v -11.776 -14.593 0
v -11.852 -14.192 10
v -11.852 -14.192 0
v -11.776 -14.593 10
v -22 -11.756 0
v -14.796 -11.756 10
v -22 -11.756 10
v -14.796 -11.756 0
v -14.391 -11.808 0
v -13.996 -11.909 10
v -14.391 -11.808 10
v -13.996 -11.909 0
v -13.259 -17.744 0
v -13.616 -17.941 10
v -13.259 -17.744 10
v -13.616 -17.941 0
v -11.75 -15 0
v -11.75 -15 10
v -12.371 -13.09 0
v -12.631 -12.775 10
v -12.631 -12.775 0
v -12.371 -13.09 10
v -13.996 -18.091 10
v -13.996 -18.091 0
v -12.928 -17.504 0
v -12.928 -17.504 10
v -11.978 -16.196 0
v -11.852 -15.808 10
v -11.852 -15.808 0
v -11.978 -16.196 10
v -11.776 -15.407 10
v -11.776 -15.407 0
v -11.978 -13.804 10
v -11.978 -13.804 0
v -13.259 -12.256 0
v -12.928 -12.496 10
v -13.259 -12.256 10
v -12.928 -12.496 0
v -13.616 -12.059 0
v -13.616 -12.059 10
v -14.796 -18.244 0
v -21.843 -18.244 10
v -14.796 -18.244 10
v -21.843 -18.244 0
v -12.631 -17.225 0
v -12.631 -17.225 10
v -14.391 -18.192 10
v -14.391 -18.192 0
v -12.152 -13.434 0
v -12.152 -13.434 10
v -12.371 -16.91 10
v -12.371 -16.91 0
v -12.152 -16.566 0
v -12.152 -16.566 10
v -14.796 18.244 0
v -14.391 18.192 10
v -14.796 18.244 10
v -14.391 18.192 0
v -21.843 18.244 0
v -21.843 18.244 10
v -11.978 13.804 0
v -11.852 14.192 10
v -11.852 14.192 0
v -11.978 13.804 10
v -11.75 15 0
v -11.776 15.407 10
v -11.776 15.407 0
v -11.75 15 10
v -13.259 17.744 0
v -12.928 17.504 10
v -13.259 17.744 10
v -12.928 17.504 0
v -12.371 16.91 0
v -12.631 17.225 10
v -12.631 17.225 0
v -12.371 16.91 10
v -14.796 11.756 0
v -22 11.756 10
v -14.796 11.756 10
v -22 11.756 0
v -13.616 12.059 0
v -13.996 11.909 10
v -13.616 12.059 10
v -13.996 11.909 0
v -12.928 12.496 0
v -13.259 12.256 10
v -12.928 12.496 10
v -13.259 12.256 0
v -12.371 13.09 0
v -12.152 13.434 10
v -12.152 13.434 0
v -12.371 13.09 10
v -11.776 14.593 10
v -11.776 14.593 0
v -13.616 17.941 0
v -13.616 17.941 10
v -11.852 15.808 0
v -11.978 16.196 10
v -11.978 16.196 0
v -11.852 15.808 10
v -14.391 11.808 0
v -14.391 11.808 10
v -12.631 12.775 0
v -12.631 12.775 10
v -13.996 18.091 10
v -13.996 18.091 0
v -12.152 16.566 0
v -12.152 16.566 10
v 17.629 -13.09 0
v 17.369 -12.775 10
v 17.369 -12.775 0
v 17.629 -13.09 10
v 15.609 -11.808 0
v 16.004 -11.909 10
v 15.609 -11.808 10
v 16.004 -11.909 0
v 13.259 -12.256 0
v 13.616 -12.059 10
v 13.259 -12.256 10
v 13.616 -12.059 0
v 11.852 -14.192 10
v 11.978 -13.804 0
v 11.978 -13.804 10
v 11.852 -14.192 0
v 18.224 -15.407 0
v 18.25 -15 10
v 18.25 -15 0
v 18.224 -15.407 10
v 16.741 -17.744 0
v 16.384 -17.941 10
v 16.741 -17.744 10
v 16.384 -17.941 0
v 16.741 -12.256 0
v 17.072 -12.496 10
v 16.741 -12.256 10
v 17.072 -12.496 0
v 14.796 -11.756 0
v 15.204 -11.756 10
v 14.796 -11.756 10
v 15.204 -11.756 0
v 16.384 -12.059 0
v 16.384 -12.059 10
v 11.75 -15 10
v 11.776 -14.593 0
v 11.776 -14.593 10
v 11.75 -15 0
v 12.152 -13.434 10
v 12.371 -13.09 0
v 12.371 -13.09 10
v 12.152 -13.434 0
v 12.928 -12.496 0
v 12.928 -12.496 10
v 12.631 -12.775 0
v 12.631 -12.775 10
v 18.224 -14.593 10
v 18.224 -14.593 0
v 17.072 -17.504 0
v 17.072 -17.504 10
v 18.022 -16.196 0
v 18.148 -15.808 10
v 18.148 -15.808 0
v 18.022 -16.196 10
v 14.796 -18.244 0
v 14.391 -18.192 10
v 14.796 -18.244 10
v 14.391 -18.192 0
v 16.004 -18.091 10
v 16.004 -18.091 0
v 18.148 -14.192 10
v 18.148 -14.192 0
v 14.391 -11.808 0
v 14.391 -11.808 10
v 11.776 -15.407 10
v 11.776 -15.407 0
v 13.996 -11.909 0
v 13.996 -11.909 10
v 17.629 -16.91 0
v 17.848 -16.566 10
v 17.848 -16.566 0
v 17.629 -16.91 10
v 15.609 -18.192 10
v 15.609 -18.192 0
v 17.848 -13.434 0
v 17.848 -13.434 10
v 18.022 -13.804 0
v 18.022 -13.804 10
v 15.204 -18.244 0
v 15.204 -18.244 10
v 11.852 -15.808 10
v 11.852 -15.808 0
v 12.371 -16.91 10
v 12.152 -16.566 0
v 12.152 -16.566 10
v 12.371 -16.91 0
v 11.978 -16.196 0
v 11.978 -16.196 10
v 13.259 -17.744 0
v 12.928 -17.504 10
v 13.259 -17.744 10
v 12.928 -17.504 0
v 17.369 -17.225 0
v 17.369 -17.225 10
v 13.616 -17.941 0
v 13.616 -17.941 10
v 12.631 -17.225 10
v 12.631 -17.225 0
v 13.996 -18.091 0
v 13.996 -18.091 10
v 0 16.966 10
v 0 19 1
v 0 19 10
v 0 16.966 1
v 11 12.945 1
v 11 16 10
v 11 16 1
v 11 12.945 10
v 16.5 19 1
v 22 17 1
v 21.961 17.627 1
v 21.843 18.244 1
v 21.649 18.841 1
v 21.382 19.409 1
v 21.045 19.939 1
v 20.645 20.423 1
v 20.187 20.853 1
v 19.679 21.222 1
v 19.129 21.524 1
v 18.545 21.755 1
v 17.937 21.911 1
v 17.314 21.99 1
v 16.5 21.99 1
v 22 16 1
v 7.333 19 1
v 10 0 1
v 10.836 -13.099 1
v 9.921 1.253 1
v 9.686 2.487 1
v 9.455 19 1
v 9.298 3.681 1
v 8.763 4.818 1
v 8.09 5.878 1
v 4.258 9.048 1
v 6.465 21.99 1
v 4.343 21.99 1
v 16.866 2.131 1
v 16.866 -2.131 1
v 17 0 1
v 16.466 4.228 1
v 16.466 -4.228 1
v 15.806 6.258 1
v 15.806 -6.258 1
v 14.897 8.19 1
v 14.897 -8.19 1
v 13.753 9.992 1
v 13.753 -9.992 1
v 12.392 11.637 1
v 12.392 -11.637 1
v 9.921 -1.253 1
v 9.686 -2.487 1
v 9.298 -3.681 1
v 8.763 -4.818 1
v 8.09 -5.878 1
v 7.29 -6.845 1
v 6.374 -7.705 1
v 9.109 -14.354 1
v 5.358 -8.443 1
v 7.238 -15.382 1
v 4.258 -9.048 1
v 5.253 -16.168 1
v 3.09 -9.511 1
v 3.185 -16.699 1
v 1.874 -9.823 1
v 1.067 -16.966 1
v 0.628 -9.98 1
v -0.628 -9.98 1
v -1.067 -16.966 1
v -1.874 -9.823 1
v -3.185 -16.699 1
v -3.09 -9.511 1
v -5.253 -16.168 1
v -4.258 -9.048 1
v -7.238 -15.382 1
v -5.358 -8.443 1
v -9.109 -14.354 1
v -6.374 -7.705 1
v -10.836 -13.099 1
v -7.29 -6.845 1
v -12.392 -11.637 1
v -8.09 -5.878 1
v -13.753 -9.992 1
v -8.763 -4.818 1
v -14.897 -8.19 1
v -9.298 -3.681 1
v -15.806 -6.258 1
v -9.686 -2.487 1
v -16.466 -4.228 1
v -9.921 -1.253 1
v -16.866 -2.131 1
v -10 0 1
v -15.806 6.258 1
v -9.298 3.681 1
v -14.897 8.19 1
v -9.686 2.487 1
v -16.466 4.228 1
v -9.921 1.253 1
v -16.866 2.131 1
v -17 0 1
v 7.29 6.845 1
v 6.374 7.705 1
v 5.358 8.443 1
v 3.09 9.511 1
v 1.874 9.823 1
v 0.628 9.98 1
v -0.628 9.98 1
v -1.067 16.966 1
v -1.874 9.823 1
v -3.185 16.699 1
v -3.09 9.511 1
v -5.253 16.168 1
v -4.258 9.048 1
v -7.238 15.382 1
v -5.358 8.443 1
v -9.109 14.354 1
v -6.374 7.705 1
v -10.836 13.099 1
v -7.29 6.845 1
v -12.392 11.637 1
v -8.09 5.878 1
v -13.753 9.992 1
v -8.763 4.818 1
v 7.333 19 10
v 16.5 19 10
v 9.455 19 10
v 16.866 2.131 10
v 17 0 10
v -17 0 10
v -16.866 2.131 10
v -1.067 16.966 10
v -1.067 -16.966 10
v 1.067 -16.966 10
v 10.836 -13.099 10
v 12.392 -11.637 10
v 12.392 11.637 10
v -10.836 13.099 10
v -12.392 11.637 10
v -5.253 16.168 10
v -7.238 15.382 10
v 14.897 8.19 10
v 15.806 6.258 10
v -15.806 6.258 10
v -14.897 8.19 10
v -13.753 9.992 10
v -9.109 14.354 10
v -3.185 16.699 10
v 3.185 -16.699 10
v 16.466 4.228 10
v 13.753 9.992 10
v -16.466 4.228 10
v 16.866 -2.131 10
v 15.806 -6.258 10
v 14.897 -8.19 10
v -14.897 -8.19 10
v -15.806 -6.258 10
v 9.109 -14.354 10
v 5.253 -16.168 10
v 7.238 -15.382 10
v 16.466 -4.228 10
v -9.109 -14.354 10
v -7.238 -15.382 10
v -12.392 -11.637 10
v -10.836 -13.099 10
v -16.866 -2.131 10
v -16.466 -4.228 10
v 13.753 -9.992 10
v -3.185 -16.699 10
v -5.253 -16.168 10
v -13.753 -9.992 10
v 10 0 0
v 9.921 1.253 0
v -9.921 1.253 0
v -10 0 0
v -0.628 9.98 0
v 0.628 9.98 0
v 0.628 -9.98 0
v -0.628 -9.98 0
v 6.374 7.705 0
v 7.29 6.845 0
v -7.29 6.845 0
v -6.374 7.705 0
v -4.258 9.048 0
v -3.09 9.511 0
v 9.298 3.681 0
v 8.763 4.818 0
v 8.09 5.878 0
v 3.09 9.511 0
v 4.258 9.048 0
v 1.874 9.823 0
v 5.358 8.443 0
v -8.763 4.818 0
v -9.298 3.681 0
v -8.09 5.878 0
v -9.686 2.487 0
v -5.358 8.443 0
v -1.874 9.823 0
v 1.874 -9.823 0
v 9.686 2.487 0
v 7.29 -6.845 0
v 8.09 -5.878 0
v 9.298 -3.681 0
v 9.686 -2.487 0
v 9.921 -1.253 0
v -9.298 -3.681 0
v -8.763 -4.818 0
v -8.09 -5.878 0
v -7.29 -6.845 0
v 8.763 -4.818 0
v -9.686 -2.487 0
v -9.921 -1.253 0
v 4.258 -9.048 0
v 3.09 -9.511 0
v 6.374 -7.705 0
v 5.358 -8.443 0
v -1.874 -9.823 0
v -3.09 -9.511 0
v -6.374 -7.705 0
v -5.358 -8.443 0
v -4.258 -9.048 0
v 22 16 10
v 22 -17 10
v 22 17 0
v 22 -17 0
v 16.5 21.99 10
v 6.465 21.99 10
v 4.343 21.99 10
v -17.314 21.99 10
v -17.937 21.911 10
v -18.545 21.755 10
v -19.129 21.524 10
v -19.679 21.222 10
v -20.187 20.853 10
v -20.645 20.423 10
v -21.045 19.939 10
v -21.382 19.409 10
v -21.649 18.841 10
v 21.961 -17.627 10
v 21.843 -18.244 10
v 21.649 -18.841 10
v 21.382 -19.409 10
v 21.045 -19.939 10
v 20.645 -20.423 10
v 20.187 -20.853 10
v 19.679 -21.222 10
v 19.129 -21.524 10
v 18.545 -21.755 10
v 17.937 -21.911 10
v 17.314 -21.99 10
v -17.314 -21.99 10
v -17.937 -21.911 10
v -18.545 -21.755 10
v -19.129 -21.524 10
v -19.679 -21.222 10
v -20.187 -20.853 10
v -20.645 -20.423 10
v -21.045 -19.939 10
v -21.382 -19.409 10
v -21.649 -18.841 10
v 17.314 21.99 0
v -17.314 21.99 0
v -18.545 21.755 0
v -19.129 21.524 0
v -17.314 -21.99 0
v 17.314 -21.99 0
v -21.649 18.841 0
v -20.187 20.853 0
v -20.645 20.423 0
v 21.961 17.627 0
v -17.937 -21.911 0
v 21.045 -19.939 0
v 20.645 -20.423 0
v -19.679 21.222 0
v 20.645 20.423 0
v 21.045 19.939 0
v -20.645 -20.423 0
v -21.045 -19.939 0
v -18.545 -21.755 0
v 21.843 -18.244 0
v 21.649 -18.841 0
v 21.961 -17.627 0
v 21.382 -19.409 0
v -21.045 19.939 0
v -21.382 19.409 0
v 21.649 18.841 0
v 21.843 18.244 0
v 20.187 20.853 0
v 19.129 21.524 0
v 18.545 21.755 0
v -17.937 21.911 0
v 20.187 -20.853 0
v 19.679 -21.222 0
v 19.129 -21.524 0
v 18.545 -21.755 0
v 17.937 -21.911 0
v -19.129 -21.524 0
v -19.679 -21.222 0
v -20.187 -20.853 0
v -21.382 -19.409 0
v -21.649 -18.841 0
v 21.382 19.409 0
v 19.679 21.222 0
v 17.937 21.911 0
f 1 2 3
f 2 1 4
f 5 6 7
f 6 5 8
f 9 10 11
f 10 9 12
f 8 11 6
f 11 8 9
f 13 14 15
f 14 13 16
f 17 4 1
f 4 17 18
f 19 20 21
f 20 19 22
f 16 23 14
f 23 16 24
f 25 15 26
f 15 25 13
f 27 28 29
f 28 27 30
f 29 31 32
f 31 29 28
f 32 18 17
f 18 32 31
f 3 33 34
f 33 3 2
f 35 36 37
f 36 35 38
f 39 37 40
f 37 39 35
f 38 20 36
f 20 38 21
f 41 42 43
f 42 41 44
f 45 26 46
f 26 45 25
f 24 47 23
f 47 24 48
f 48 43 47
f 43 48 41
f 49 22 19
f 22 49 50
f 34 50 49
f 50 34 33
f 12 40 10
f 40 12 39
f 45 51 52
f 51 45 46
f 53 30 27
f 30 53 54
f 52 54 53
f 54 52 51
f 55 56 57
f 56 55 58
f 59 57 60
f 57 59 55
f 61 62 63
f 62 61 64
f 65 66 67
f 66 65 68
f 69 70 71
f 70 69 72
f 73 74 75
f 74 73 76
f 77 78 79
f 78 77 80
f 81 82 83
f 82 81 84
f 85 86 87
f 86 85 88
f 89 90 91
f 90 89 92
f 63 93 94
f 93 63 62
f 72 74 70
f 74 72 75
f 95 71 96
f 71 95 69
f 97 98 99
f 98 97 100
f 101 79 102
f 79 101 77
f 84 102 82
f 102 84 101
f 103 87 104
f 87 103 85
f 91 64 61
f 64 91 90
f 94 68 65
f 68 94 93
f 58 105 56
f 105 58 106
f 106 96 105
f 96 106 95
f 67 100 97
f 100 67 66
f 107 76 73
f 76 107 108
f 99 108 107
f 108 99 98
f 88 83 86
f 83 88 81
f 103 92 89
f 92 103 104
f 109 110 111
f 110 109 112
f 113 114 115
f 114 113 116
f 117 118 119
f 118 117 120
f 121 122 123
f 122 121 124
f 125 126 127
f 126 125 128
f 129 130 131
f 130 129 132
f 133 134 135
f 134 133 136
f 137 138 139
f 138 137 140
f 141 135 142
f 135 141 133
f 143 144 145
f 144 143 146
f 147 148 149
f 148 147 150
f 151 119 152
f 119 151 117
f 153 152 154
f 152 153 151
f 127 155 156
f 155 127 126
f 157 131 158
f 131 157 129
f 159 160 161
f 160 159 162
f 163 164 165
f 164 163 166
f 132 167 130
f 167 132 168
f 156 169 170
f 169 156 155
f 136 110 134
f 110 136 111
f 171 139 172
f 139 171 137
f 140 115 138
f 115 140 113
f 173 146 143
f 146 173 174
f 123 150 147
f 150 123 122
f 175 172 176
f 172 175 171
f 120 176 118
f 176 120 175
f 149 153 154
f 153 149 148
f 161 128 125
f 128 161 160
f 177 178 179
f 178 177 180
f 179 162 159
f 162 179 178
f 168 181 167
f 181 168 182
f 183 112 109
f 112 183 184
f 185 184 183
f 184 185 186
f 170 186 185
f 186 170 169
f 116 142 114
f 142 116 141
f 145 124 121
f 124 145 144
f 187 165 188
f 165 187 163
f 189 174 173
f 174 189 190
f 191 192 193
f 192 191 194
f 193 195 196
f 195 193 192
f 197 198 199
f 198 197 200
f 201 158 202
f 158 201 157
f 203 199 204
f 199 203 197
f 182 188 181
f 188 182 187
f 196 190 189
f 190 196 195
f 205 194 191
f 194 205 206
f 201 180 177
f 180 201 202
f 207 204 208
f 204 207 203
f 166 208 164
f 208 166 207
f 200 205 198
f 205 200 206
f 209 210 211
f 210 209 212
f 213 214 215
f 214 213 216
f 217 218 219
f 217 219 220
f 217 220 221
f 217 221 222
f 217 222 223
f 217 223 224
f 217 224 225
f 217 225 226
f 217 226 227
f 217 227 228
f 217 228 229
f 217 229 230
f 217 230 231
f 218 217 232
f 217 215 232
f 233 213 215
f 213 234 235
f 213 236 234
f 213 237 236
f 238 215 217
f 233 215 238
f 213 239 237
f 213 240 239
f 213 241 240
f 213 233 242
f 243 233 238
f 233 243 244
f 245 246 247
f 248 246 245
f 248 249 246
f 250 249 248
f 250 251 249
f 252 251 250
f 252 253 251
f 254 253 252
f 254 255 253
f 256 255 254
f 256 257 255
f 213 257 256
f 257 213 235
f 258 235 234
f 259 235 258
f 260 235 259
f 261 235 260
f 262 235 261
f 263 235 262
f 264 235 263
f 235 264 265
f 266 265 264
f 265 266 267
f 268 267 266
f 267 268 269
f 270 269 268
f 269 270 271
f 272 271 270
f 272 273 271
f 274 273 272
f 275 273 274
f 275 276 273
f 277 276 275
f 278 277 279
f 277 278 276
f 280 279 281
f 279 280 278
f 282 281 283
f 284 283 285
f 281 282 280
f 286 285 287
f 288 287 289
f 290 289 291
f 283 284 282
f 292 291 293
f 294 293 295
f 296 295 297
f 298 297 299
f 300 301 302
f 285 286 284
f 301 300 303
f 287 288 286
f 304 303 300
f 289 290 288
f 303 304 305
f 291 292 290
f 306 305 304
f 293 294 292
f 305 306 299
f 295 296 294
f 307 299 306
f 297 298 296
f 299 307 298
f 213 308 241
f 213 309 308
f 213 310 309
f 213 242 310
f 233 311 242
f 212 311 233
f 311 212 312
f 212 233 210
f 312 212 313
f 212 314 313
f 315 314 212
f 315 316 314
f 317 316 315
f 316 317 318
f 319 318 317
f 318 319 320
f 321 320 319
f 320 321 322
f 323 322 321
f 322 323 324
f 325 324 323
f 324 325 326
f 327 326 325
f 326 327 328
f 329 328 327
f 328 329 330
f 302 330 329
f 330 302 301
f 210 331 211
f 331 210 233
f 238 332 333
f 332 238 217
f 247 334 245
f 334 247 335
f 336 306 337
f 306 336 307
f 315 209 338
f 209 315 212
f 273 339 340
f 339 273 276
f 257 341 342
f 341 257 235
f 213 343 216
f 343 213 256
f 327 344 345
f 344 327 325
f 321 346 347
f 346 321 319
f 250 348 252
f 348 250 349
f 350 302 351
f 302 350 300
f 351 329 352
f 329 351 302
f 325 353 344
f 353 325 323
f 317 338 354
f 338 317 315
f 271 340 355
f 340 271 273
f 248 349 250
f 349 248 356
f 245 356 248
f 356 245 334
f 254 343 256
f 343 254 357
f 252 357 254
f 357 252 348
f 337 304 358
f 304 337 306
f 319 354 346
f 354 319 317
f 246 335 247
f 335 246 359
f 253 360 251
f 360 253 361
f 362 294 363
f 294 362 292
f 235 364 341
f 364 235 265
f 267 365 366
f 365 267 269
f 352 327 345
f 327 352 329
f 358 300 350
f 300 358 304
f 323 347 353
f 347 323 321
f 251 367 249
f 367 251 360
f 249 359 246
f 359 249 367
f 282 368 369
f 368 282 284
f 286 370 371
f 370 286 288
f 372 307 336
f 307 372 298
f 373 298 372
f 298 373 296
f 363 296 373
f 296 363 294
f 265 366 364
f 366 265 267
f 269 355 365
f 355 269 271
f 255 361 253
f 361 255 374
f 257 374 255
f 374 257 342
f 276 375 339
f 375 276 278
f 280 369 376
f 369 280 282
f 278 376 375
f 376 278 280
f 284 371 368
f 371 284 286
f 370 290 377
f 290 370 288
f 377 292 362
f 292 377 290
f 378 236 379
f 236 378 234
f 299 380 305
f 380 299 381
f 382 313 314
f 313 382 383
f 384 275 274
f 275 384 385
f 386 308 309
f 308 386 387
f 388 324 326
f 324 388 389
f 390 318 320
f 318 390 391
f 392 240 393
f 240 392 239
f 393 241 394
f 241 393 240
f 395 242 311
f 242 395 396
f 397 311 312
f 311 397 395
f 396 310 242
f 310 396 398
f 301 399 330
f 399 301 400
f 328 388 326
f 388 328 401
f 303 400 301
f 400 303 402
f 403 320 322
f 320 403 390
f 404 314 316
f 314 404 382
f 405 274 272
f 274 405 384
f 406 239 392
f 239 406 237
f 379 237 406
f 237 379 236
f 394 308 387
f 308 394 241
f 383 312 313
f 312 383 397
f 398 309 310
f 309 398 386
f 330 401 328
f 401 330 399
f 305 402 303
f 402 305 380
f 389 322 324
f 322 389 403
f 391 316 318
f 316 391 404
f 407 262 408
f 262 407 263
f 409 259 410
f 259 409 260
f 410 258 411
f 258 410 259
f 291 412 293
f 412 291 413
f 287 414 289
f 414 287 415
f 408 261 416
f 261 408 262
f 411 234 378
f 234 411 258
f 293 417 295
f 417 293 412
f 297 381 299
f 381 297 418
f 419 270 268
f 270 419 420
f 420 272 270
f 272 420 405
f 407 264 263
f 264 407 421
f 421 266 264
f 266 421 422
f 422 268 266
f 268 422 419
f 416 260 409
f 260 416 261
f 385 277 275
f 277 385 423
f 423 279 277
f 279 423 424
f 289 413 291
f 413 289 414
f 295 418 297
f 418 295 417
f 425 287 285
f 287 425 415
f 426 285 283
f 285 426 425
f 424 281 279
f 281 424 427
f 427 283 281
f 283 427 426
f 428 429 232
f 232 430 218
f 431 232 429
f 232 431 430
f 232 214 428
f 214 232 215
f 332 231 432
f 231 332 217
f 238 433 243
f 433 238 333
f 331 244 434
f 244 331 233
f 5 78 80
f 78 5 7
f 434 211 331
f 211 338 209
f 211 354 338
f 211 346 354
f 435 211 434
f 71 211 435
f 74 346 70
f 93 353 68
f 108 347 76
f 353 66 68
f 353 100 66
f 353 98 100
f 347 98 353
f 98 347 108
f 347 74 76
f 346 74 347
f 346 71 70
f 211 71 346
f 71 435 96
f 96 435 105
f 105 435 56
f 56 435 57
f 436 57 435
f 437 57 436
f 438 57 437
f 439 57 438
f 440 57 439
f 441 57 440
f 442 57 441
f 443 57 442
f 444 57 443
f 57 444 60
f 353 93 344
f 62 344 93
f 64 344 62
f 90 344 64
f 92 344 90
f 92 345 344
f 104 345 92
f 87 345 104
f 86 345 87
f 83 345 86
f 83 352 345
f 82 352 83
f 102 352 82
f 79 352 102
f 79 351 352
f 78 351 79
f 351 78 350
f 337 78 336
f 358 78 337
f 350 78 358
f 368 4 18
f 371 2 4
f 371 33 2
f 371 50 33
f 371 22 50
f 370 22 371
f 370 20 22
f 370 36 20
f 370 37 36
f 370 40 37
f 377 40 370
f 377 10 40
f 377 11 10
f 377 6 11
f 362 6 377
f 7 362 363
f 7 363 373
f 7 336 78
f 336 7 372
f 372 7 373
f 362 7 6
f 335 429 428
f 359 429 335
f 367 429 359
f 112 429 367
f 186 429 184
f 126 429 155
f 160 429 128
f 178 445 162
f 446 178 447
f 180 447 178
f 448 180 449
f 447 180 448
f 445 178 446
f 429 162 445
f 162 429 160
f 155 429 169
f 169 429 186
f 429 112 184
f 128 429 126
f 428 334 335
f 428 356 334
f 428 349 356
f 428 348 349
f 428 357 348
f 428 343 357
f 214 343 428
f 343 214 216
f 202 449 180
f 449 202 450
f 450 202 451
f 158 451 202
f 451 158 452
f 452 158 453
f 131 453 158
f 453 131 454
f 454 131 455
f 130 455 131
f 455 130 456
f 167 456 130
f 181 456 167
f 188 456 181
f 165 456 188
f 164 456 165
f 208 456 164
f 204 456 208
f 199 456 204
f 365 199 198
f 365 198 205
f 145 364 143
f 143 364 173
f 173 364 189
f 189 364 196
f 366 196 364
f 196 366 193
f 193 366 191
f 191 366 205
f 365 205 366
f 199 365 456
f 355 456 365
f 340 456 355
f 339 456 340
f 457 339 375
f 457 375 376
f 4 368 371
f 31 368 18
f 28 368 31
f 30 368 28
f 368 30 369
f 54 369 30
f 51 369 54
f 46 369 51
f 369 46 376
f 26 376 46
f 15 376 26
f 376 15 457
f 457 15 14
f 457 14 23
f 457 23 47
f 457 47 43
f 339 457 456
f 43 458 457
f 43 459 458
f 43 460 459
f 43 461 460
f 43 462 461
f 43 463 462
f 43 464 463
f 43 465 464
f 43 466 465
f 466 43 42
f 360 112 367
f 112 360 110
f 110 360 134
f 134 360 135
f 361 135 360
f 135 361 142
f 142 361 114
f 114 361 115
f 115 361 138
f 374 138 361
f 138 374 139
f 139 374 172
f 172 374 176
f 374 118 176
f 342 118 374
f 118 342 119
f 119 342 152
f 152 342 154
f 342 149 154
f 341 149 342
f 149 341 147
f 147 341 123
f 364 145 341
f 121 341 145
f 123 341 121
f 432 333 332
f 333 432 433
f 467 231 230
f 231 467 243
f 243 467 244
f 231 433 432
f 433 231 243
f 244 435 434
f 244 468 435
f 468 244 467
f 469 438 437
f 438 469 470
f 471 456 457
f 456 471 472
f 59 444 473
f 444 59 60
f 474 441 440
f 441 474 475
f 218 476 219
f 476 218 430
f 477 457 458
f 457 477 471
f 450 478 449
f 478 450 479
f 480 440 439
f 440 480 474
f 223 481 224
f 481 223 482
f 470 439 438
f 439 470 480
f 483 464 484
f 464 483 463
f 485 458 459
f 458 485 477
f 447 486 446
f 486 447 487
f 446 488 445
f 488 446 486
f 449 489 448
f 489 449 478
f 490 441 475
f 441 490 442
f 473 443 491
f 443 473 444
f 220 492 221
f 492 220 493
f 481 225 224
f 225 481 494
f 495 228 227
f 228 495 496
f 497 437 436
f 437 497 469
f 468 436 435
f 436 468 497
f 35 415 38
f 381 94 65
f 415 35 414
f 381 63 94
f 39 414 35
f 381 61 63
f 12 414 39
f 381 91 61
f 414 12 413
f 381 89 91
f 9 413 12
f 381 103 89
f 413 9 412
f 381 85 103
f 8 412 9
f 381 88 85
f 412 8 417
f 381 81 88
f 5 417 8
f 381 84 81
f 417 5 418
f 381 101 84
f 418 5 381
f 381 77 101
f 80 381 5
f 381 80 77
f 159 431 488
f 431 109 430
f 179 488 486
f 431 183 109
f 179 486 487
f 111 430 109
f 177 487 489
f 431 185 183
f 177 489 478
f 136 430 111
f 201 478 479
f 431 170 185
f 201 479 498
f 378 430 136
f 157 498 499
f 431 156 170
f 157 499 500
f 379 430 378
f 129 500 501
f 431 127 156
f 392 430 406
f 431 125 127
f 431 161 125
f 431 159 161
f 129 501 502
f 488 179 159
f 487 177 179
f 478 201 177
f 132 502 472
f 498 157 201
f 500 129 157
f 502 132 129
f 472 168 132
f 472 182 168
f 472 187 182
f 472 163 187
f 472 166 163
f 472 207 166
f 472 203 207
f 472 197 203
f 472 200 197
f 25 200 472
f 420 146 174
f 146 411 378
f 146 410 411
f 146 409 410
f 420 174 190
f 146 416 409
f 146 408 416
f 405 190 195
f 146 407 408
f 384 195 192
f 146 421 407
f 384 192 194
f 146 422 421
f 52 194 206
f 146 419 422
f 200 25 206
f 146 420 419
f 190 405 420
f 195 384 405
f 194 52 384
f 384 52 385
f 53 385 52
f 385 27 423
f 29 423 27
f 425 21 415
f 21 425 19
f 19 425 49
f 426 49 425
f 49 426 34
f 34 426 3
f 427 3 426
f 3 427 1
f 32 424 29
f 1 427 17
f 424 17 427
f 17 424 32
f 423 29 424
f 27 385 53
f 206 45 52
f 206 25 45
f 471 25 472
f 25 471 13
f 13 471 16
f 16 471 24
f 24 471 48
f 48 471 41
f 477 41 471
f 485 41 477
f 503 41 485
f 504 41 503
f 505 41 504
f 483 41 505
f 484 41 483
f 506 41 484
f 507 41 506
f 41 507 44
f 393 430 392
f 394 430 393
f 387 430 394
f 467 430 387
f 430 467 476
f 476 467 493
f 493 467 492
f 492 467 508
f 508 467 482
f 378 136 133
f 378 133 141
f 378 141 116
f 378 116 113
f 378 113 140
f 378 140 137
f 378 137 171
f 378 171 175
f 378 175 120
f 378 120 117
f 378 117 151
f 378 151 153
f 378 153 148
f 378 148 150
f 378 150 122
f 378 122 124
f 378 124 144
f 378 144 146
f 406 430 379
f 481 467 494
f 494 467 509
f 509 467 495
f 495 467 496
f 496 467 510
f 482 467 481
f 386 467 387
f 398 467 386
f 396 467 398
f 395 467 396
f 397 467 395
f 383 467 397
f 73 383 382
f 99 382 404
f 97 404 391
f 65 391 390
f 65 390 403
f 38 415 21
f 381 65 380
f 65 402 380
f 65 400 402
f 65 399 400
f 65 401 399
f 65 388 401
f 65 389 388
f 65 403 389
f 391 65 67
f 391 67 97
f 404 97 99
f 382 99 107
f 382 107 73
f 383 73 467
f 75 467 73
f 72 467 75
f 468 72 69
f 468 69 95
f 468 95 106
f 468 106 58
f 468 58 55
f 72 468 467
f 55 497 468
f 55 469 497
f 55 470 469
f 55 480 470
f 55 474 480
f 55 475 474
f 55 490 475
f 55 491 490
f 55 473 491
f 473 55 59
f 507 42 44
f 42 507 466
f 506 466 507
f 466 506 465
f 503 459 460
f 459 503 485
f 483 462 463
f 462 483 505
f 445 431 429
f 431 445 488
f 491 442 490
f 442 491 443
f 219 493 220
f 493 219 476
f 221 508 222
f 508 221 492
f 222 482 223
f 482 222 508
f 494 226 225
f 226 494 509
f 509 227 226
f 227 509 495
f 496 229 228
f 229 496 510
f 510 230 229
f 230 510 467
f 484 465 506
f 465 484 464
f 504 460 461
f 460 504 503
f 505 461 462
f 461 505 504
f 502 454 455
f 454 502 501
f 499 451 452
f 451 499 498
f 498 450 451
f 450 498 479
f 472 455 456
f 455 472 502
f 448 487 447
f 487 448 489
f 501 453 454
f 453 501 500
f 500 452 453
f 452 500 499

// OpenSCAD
$fn = 50;


difference() {
	union() {
		translate(v = [0, 0, 0]) {
			rotate(a = [0, 0, 0]) {
				hull() {
					translate(v = [-17.0000000000, 17.0000000000, 0]) {
						rotate(a = [0, 0, 0]) {
							translate(v = [0, 0, 0]) {
								rotate(a = [0, 0, 0]) {
									cylinder(h = 10, r = 5);
								}
							}
						}
					}
					translate(v = [17.0000000000, 17.0000000000, 0]) {
						rotate(a = [0, 0, 0]) {
							translate(v = [0, 0, 0]) {
								rotate(a = [0, 0, 0]) {
									cylinder(h = 10, r = 5);
								}
							}
						}
					}
					translate(v = [-17.0000000000, -17.0000000000, 0]) {
						rotate(a = [0, 0, 0]) {
							translate(v = [0, 0, 0]) {
								rotate(a = [0, 0, 0]) {
									cylinder(h = 10, r = 5);
								}
							}
						}
					}
					translate(v = [17.0000000000, -17.0000000000, 0]) {
						rotate(a = [0, 0, 0]) {
							translate(v = [0, 0, 0]) {
								rotate(a = [0, 0, 0]) {
									cylinder(h = 10, r = 5);
								}
							}
						}
					}
				}
			}
		}
	}
	union() {
		translate(v = [-22.5000000000, -15.0000000000, -125]) {
			rotate(a = [0, 0, 0]) {
				hull() {
					translate(v = [7.5000000000, 0, 0]) {
						rotate(a = [0, 0, 0]) {
							translate(v = [0, 0, 0]) {
								rotate(a = [0, 0, 0]) {
									cylinder(h = 250, r = 3.2500000000);
								}
							}
						}
					}
					translate(v = [-7.5000000000, 0, 0]) {
						rotate(a = [0, 0, 0]) {
							translate(v = [0, 0, 0]) {
								rotate(a = [0, 0, 0]) {
									cylinder(h = 250, r = 3.2500000000);
								}
							}
						}
					}
				}
			}
		}
		translate(v = [-22.5000000000, 15.0000000000, -125]) {
			rotate(a = [0, 0, 0]) {
				hull() {
					translate(v = [7.5000000000, 0, 0]) {
						rotate(a = [0, 0, 0]) {
							translate(v = [0, 0, 0]) {
								rotate(a = [0, 0, 0]) {
									cylinder(h = 250, r = 3.2500000000);
								}
							}
						}
					}
					translate(v = [-7.5000000000, 0, 0]) {
						rotate(a = [0, 0, 0]) {
							translate(v = [0, 0, 0]) {
								rotate(a = [0, 0, 0]) {
									cylinder(h = 250, r = 3.2500000000);
								}
							}
						}
					}
				}
			}
		}
		translate(v = [15.0000000000, -15.0000000000, -125.0000000000]) {
			rotate(a = [0, 0, 0]) {
				cylinder(h = 250, r = 3.2500000000);
			}
		}
		translate(v = [0.0000000000, 11.0000000000, 1.0000000000]) {
			rotate(a = [0, 0, 0]) {
				cube(size = [11, 8, 12]);
			}
		}
		translate(v = [0, 0, 1.0000000000]) {
			rotate(a = [0, 0, 0]) {
				cylinder(h = 12, r = 17.0000000000);
			}
		}
		translate(v = [0, 0, -5.0000000000]) {
			rotate(a = [0, 0, 0]) {
				cylinder(h = 10, r = 10.0000000000);
			}
		}
		translate(v = [0.0000000000, 16.0000000000, 1]) {
			rotate(a = [0, 0, 0]) {
				cube(size = [22.0000000000, 3, 12]);
			}
		}
		translate(v = [16.5000000000, 16.0000000000, 1]) {
			rotate(a = [0, 0, 0]) {
				cube(size = [5.5000000000, 6, 12]);
			}
		}
		translate(v = [3.5833333333, 22.7500000000, 1]) {
			rotate(a = [0, 0, -45]) {
				cube(size = [7.5000000000, 1.5000000000, 12]);
			}
		}
	}
}
